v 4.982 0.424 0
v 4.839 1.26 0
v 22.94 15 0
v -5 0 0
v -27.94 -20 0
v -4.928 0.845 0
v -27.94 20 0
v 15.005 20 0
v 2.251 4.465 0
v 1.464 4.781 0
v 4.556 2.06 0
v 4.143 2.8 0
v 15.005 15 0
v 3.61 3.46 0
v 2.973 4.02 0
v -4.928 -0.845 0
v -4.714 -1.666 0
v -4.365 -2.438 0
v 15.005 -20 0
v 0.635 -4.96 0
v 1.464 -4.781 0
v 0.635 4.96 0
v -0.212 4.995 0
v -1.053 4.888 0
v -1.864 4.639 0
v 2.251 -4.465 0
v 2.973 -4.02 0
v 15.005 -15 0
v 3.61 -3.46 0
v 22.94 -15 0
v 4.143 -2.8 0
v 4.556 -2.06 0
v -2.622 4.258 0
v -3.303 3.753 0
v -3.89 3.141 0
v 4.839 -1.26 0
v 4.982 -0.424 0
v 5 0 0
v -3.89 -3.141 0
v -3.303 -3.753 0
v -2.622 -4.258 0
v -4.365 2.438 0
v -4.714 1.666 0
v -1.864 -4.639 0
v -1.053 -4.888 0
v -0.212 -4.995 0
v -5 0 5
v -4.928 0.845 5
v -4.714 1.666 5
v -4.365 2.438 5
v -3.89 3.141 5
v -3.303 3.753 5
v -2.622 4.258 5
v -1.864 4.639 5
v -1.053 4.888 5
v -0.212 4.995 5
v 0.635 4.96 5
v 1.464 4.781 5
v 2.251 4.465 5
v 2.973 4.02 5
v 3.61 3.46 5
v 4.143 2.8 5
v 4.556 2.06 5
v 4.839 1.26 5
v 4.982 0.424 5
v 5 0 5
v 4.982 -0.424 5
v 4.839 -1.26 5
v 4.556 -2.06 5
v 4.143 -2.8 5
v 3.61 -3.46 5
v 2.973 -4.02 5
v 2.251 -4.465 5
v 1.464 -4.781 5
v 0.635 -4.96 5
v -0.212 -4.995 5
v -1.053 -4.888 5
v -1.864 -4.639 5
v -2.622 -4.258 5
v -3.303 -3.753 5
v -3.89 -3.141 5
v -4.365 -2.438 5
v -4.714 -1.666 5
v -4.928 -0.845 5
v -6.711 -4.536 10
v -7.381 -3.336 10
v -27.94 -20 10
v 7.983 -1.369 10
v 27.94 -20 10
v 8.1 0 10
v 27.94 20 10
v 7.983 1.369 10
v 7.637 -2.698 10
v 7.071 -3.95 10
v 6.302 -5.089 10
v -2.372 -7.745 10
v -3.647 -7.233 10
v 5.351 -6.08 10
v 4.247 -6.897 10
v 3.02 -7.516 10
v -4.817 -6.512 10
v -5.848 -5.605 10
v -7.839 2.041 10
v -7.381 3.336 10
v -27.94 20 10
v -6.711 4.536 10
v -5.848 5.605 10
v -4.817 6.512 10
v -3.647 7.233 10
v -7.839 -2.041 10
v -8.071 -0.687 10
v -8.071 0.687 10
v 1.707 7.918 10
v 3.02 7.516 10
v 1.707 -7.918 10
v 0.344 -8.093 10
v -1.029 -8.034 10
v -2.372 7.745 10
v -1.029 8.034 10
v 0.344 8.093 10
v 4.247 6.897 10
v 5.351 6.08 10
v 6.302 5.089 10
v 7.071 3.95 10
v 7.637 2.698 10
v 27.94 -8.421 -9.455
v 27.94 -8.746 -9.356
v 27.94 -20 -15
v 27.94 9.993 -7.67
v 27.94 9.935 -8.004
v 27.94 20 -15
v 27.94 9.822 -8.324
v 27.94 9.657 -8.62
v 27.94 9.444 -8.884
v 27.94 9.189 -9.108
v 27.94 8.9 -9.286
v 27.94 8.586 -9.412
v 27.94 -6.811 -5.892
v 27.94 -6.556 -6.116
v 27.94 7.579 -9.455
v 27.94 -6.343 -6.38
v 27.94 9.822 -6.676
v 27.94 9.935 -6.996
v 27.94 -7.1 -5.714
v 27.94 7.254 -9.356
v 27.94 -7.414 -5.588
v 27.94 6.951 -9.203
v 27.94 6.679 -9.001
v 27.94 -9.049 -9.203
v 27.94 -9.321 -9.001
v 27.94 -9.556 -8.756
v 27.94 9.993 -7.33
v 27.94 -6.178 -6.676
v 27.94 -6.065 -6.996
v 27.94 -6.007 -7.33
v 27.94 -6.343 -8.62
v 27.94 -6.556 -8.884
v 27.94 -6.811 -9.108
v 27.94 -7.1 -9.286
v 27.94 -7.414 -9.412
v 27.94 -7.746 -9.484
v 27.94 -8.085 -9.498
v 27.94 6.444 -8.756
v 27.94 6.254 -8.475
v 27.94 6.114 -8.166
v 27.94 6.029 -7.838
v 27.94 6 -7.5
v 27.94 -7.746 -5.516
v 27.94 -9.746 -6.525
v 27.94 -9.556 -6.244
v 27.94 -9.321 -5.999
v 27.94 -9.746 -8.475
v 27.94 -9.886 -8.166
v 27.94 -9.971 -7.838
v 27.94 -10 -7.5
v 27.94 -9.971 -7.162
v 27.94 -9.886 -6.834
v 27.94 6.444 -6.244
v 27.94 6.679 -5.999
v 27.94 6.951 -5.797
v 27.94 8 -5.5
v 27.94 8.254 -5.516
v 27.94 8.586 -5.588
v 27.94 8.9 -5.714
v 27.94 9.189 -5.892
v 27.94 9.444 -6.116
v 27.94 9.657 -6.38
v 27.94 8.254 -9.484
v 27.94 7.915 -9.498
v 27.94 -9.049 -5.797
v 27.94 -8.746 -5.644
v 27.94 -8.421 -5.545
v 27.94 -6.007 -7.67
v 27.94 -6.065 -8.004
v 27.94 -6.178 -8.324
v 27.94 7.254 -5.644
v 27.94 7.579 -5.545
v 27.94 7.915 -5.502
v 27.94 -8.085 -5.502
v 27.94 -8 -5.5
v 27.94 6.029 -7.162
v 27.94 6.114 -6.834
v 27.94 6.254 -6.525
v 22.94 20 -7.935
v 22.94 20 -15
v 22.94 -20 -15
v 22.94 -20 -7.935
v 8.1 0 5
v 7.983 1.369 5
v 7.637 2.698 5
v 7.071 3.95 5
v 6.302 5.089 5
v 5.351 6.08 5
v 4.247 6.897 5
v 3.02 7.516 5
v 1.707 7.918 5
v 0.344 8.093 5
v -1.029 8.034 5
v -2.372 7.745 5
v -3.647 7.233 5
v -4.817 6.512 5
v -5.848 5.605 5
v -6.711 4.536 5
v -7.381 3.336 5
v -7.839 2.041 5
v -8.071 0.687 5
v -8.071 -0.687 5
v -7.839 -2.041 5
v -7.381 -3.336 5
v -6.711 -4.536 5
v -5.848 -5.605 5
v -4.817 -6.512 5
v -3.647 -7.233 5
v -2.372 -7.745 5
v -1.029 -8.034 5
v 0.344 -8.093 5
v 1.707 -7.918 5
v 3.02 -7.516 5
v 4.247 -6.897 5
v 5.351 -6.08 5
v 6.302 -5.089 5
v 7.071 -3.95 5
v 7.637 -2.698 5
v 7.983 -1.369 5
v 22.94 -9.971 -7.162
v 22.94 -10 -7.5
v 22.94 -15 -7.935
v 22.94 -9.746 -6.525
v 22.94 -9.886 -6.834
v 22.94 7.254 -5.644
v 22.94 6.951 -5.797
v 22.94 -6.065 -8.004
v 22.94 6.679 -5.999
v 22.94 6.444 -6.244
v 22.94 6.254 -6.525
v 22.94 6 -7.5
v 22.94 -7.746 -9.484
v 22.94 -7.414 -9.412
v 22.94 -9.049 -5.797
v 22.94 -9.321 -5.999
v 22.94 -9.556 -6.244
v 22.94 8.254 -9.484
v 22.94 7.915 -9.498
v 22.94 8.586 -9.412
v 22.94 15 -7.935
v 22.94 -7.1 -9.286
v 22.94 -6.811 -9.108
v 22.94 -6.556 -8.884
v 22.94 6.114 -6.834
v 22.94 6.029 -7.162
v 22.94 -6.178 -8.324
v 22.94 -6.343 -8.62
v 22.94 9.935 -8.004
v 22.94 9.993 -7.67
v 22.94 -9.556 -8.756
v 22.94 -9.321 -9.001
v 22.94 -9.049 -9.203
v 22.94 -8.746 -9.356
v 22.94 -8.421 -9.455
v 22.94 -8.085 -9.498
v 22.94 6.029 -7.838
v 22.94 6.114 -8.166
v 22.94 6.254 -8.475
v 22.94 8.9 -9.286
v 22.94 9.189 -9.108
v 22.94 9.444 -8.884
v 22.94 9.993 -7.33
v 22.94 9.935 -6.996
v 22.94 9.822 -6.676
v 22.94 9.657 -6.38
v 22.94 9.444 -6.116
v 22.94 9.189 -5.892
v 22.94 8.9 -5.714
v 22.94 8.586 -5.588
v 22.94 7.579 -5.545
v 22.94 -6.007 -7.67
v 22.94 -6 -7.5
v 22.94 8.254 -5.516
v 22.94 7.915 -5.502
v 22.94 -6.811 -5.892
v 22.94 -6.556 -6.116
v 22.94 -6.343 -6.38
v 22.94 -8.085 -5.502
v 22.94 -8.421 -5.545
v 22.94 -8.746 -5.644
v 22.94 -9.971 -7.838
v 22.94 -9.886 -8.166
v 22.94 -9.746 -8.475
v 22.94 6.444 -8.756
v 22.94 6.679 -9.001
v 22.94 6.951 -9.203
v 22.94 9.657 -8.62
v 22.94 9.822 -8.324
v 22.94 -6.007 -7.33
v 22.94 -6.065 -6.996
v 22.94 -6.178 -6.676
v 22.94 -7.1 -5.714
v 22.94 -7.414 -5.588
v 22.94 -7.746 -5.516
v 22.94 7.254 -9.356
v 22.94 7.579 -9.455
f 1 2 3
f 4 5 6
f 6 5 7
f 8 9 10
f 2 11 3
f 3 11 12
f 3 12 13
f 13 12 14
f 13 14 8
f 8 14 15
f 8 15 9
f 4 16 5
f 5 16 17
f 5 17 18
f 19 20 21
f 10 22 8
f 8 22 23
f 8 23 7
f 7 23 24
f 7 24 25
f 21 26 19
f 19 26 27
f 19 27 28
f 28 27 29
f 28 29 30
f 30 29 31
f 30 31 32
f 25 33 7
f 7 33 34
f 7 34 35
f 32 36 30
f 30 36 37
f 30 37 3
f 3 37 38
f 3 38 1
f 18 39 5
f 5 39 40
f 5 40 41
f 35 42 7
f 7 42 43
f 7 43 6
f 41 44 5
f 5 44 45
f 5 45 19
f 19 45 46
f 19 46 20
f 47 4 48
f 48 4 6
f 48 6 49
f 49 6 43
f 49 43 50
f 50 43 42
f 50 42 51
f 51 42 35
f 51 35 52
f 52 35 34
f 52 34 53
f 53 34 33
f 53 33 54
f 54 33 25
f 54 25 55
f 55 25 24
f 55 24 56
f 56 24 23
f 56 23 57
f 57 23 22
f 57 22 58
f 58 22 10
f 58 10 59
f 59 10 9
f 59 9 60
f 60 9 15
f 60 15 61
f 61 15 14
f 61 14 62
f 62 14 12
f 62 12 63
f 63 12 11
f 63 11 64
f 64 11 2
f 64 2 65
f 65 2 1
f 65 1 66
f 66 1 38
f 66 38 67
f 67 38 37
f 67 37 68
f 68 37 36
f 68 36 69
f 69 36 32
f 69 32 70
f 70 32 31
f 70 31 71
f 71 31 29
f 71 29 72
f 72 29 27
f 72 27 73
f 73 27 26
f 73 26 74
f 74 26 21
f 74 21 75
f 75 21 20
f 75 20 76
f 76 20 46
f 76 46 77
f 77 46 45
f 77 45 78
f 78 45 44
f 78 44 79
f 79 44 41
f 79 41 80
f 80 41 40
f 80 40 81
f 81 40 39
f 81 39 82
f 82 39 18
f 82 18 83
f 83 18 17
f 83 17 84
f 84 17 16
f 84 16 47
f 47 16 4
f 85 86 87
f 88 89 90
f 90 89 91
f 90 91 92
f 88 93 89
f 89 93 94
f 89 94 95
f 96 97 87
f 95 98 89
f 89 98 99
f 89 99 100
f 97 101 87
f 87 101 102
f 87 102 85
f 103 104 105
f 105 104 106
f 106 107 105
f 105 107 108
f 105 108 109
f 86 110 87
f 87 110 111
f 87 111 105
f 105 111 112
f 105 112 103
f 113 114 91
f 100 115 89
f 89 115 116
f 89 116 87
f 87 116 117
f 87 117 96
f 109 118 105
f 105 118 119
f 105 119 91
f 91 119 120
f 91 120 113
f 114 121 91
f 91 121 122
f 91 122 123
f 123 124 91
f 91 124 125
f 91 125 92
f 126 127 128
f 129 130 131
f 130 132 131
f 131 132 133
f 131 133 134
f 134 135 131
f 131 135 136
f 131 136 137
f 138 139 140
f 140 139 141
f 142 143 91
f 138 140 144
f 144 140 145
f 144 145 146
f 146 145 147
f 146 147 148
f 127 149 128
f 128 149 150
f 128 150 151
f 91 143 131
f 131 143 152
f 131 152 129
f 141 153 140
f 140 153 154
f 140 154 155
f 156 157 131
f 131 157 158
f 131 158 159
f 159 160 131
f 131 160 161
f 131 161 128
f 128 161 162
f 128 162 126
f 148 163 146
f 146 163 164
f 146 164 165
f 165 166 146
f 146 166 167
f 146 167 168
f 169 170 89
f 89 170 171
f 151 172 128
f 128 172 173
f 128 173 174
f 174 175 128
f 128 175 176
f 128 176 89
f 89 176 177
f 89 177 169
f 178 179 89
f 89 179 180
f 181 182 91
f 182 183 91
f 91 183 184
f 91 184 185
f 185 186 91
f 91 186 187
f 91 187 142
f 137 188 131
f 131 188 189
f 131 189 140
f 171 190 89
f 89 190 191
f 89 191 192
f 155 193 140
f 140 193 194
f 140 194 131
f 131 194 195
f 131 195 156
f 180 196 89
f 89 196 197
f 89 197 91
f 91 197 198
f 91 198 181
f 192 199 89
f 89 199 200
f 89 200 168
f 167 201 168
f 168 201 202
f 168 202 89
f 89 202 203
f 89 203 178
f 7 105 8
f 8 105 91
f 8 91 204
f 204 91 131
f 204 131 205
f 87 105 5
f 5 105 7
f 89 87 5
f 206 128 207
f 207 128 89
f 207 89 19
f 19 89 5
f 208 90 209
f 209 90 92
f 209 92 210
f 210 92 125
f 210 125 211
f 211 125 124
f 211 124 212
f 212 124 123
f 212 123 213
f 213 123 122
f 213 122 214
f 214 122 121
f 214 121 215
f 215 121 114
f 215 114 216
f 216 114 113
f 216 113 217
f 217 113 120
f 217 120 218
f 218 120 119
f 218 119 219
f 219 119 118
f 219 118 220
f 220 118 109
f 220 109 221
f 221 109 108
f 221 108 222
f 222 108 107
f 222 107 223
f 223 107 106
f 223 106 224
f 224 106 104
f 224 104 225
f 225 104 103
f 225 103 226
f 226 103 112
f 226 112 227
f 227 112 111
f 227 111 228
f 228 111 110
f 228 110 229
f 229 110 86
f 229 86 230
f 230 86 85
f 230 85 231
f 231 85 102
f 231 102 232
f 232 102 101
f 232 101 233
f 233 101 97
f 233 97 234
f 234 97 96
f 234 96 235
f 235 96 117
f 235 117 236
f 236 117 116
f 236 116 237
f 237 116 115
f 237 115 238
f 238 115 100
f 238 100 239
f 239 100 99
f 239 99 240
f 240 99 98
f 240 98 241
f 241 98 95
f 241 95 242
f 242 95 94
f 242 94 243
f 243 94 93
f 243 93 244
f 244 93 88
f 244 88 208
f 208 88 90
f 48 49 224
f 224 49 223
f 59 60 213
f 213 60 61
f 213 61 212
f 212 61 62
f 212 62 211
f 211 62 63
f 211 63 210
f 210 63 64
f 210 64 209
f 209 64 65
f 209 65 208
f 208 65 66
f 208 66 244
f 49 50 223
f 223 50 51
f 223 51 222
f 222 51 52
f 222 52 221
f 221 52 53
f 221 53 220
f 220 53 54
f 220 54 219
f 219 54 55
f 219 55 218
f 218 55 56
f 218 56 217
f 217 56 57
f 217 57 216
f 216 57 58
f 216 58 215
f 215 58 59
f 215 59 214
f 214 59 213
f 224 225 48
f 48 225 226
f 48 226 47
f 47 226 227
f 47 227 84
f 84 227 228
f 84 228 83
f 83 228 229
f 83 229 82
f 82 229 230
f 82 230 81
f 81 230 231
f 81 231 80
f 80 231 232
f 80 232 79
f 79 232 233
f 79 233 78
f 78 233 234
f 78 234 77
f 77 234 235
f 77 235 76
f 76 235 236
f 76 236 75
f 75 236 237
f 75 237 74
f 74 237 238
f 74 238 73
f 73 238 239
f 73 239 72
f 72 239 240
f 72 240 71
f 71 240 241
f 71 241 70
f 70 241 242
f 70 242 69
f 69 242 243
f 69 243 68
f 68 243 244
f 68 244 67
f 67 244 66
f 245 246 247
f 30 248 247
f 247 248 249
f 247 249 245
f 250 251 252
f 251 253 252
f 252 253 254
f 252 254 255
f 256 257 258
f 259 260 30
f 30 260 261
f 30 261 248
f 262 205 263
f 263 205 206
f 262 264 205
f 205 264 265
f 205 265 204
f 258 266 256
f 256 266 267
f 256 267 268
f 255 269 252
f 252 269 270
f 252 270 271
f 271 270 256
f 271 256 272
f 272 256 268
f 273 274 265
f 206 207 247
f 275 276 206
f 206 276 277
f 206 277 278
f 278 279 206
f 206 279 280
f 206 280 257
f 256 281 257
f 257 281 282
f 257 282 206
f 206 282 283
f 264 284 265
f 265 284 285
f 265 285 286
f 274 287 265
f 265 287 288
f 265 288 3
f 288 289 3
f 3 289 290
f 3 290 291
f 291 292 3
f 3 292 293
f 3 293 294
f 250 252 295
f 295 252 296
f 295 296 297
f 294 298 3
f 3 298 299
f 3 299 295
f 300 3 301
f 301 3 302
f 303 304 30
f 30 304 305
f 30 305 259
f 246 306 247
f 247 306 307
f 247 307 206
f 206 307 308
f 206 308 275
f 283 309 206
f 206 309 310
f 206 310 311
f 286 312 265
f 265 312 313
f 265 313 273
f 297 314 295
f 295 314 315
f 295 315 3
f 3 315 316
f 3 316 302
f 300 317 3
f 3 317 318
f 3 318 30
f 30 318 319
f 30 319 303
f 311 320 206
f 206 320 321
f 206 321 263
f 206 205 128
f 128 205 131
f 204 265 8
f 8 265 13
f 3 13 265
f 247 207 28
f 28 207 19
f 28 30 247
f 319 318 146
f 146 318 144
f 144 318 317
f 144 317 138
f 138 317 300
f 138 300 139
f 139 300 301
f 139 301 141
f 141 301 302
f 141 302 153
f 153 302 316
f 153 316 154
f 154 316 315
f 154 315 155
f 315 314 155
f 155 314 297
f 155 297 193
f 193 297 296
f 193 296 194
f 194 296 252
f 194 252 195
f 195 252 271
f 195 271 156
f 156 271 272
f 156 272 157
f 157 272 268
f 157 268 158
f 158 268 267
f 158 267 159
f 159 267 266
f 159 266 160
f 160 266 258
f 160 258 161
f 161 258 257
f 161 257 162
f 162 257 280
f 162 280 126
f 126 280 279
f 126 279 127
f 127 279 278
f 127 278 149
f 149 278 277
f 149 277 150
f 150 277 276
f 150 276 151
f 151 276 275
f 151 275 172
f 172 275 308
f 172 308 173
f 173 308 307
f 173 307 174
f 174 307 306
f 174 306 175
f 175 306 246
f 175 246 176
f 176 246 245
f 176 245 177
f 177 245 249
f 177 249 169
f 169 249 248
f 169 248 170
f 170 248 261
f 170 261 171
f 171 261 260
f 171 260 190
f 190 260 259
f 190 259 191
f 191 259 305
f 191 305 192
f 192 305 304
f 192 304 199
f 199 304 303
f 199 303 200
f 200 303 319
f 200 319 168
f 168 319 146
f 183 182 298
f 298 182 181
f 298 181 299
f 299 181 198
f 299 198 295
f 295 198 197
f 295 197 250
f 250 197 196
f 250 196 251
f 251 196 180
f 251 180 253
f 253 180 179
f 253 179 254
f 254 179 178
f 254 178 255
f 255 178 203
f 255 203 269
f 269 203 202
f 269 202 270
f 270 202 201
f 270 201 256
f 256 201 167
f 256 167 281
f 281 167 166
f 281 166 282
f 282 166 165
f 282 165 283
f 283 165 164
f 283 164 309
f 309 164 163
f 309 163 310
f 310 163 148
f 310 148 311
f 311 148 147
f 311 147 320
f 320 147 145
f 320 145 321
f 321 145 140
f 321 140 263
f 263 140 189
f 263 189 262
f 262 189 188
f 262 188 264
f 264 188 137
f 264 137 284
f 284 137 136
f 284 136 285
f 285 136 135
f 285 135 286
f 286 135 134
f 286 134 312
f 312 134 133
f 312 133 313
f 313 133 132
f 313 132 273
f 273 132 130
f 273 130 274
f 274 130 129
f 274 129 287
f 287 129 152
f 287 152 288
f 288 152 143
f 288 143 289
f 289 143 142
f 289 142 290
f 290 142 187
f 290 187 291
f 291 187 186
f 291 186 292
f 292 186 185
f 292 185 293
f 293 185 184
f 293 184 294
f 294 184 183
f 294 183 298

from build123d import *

# Parameters (mm, degrees)
SKETCH1_W           = 55.88
SKETCH1_H           = 40
SKETCH1_R           = 5
BOSS_EXTRUDE1_DEPTH = 10
SKETCH2_R           = 8.1
CUT_EXTRUDE1_DEPTH  = 5
SKETCH3_W           = 5
SKETCH3_H           = 40
BOSS_EXTRUDE3_DEPTH = 15
RIB1_REACH          = 53.046
SKETCH4_WALL_W      = 115.312280144
SKETCH4_WALL_H      = 5
SKETCH5_R           = 2
CUT_EXTRUDE2_DEPTH  = 15


with BuildPart() as part:
    # Sketch1 → Boss-Extrude1 (new body)
    with BuildSketch(Plane.XY):
        Rectangle(SKETCH1_W, SKETCH1_H)
        Circle(SKETCH1_R, mode=Mode.SUBTRACT)
    extrude(amount=BOSS_EXTRUDE1_DEPTH)

    # Sketch2 → Cut-Extrude1 (cut)
    with BuildSketch(Plane.XY.offset(10)):
        Circle(SKETCH2_R)
    extrude(amount=-CUT_EXTRUDE1_DEPTH, mode=Mode.SUBTRACT)

    # Sketch3 → Boss-Extrude3 (add)
    with BuildSketch(Plane(origin=(0, 0, 0), x_dir=(-1, 0, 0), z_dir=(0, 0, -1))):
        with Locations((-25.44, 0)):
            Rectangle(SKETCH3_W, SKETCH3_H)
    extrude(amount=BOSS_EXTRUDE3_DEPTH)

    # Sketch4 wall → Rib1 (add, up to next)
    with BuildSketch(Plane(origin=(18.972682027, 20, -3.967317973), x_dir=(0.707106781187, 0, -0.707106781187), z_dir=(-0.707106781187, 0, -0.707106781187)), mode=Mode.PRIVATE) as rib1_sk1:
        with Locations((0, 2.5)):
            Rectangle(SKETCH4_WALL_W, SKETCH4_WALL_H)
    rib1_tool1 = extrude(rib1_sk1.sketch, amount=-RIB1_REACH, mode=Mode.PRIVATE) - part.part
    rib1 = rib1_tool1.solids().sort_by_distance((18.972682027, 20, -3.967317973))[0]
    add(rib1)

    # Mirror1: Rib1 across plane
    add(rib1.mirror(Plane.ZX))

    # Sketch5 → Cut-Extrude2 (cut)
    with BuildSketch(Plane.ZY.offset(-22.94)):
        with Locations(Location((-7.5, 8, 0), (0, 0, 270))):
            Circle(SKETCH5_R)
        with Locations((-7.5, -8)):
            Circle(SKETCH5_R)
    extrude(amount=-CUT_EXTRUDE2_DEPTH, mode=Mode.SUBTRACT)


solid = part.part
